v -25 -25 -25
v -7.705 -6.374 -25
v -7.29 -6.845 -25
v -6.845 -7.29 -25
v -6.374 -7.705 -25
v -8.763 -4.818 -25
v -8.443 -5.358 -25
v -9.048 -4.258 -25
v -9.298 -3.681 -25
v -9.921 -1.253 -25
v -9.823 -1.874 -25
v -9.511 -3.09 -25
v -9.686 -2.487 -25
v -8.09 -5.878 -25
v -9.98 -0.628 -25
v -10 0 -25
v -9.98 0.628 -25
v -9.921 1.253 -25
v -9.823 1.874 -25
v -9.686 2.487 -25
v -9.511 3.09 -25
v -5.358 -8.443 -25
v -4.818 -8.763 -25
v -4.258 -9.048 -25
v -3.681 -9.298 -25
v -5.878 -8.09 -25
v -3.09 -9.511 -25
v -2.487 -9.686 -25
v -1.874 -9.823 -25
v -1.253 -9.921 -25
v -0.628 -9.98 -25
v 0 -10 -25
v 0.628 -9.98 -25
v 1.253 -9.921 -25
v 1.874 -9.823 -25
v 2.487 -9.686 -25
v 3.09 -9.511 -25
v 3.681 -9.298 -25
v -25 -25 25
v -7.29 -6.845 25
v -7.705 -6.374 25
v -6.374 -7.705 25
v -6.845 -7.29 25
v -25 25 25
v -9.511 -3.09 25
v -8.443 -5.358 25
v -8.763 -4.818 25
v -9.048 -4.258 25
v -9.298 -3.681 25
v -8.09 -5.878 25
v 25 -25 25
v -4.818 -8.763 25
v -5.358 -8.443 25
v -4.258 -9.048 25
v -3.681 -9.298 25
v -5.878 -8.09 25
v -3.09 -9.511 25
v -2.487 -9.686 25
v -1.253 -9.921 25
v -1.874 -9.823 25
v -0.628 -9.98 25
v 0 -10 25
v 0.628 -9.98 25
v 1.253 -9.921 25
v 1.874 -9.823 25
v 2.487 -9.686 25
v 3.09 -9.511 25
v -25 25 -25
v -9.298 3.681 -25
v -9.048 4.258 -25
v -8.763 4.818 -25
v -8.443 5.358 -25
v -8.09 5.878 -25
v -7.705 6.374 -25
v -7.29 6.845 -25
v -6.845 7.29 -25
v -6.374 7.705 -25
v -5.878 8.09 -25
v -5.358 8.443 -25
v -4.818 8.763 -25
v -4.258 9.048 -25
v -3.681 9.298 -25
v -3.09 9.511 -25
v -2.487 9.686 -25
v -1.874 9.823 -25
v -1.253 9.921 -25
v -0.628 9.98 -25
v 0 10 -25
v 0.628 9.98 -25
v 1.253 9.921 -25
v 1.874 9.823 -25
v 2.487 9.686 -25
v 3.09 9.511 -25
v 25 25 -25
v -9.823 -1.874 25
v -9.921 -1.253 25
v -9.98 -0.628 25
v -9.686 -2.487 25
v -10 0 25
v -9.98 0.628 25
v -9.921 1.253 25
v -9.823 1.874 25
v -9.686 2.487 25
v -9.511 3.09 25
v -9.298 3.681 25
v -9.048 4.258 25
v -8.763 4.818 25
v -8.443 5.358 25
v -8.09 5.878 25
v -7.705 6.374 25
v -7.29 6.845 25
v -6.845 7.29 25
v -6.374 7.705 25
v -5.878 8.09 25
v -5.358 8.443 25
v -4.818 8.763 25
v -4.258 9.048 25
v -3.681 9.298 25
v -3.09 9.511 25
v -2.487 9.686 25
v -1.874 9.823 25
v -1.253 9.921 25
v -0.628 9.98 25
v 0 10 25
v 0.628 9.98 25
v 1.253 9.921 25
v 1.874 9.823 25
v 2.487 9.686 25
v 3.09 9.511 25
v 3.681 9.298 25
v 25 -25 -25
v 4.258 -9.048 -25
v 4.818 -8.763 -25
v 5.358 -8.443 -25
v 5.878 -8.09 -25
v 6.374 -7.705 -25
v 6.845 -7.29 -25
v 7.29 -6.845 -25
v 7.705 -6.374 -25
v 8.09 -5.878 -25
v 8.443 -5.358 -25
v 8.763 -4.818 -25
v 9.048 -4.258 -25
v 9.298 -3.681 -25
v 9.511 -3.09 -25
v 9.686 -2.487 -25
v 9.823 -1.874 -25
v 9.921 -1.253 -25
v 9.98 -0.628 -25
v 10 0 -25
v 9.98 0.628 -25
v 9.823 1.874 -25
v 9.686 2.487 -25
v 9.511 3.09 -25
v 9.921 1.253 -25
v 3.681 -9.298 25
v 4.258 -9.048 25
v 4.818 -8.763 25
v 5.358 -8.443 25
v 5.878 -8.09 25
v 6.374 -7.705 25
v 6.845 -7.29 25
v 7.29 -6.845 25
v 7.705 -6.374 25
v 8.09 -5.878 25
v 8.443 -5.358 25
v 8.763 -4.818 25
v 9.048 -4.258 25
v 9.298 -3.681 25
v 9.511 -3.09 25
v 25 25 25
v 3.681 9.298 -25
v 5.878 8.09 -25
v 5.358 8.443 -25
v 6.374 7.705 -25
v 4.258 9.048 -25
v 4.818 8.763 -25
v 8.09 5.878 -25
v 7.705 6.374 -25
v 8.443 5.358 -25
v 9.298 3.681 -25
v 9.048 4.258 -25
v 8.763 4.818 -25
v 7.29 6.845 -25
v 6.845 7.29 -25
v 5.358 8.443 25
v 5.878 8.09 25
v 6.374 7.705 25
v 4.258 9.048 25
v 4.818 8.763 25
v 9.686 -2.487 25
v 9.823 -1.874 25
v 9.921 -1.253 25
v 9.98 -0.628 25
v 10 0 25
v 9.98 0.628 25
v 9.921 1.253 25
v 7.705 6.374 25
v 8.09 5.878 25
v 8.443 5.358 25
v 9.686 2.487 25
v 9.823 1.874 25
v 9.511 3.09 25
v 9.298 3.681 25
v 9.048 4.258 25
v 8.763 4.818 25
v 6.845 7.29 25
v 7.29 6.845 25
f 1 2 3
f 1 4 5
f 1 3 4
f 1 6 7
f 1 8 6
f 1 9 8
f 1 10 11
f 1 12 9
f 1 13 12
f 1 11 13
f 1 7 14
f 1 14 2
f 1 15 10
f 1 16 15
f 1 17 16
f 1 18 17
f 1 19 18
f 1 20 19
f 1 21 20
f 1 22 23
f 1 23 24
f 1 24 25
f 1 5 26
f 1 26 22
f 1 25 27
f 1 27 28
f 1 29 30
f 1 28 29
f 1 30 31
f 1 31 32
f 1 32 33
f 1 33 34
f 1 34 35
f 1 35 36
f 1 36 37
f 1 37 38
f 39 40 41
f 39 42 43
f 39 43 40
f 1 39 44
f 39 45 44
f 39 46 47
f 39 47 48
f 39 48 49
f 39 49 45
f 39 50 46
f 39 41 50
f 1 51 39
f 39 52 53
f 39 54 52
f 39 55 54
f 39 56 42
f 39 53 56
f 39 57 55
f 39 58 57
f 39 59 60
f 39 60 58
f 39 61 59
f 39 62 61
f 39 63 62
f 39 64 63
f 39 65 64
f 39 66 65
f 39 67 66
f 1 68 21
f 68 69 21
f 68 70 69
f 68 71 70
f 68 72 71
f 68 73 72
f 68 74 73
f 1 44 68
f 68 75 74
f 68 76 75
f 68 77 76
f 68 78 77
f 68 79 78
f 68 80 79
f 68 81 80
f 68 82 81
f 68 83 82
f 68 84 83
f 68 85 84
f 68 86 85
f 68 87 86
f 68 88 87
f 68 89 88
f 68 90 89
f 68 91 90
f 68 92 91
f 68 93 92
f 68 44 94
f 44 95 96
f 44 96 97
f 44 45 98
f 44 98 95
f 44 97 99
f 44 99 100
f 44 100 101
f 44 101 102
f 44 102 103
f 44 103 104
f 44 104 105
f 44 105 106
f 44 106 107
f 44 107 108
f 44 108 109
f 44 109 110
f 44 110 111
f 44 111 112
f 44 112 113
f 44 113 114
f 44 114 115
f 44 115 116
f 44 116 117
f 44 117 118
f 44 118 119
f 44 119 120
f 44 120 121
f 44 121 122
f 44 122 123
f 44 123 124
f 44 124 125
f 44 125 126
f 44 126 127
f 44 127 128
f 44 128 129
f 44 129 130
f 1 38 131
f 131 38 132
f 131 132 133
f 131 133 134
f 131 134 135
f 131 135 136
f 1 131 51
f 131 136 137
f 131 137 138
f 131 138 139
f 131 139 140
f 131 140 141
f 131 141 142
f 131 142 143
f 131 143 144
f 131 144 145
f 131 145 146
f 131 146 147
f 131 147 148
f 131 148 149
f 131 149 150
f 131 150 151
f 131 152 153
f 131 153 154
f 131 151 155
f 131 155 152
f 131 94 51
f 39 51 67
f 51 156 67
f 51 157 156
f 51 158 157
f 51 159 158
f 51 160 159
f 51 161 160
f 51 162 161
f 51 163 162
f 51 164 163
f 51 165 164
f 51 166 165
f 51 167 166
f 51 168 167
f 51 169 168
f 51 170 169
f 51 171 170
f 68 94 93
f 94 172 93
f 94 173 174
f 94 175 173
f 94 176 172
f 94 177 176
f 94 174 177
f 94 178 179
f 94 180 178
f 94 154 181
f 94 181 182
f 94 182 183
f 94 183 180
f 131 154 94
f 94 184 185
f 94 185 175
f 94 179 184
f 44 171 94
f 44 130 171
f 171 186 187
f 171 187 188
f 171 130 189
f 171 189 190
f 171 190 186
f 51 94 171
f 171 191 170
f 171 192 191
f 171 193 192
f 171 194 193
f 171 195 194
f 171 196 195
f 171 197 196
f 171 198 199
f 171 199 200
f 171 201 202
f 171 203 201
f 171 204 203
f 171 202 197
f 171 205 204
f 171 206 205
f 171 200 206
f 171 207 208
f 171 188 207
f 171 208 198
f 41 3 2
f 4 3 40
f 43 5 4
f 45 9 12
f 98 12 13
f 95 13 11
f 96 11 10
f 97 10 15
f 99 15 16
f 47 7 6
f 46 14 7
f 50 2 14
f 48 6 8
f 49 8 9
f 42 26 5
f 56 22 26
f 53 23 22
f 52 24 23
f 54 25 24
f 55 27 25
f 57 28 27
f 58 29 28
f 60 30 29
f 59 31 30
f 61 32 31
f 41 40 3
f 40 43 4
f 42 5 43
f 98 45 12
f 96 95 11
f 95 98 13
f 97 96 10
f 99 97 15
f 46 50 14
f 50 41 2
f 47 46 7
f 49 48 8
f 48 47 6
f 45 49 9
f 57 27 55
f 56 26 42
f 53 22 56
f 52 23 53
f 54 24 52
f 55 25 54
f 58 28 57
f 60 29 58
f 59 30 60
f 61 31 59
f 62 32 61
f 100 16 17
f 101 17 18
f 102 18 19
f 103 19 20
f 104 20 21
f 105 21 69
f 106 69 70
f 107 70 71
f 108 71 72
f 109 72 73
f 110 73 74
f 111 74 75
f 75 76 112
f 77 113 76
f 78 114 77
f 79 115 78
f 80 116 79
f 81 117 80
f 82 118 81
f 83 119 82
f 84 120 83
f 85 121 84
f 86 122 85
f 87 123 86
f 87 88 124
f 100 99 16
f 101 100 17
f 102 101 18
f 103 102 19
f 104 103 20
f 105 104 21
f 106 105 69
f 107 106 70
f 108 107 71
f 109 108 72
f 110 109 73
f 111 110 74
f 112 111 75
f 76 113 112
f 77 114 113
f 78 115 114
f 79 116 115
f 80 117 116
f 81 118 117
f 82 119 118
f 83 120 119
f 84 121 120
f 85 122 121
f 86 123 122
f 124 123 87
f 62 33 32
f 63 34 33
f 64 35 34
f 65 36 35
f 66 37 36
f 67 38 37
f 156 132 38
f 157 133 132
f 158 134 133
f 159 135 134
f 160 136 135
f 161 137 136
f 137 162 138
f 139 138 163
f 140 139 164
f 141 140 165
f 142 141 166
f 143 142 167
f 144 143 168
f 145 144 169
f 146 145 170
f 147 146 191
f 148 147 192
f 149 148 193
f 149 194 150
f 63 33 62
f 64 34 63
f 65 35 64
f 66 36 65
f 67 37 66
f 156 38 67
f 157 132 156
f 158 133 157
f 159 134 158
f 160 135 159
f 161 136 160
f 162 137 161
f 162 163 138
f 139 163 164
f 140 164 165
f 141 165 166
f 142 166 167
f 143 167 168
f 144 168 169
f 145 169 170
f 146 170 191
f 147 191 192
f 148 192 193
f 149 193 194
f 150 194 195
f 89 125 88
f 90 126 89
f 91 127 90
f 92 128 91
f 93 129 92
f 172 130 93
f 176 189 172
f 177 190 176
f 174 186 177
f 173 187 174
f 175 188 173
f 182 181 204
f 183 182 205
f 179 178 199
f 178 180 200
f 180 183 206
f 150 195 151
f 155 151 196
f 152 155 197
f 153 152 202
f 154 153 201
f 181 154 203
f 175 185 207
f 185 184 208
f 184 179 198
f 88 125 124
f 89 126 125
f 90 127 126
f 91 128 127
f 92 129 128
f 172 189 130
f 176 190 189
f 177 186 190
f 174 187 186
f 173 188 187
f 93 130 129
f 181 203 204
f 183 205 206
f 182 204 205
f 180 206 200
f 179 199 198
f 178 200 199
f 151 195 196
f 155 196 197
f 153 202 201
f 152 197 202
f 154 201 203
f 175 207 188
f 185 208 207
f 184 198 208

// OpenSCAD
difference() {
    cube([50, 50, 50], center = true);
    cylinder(h = 52, d = 20, center = true, $fn = 100);
}
